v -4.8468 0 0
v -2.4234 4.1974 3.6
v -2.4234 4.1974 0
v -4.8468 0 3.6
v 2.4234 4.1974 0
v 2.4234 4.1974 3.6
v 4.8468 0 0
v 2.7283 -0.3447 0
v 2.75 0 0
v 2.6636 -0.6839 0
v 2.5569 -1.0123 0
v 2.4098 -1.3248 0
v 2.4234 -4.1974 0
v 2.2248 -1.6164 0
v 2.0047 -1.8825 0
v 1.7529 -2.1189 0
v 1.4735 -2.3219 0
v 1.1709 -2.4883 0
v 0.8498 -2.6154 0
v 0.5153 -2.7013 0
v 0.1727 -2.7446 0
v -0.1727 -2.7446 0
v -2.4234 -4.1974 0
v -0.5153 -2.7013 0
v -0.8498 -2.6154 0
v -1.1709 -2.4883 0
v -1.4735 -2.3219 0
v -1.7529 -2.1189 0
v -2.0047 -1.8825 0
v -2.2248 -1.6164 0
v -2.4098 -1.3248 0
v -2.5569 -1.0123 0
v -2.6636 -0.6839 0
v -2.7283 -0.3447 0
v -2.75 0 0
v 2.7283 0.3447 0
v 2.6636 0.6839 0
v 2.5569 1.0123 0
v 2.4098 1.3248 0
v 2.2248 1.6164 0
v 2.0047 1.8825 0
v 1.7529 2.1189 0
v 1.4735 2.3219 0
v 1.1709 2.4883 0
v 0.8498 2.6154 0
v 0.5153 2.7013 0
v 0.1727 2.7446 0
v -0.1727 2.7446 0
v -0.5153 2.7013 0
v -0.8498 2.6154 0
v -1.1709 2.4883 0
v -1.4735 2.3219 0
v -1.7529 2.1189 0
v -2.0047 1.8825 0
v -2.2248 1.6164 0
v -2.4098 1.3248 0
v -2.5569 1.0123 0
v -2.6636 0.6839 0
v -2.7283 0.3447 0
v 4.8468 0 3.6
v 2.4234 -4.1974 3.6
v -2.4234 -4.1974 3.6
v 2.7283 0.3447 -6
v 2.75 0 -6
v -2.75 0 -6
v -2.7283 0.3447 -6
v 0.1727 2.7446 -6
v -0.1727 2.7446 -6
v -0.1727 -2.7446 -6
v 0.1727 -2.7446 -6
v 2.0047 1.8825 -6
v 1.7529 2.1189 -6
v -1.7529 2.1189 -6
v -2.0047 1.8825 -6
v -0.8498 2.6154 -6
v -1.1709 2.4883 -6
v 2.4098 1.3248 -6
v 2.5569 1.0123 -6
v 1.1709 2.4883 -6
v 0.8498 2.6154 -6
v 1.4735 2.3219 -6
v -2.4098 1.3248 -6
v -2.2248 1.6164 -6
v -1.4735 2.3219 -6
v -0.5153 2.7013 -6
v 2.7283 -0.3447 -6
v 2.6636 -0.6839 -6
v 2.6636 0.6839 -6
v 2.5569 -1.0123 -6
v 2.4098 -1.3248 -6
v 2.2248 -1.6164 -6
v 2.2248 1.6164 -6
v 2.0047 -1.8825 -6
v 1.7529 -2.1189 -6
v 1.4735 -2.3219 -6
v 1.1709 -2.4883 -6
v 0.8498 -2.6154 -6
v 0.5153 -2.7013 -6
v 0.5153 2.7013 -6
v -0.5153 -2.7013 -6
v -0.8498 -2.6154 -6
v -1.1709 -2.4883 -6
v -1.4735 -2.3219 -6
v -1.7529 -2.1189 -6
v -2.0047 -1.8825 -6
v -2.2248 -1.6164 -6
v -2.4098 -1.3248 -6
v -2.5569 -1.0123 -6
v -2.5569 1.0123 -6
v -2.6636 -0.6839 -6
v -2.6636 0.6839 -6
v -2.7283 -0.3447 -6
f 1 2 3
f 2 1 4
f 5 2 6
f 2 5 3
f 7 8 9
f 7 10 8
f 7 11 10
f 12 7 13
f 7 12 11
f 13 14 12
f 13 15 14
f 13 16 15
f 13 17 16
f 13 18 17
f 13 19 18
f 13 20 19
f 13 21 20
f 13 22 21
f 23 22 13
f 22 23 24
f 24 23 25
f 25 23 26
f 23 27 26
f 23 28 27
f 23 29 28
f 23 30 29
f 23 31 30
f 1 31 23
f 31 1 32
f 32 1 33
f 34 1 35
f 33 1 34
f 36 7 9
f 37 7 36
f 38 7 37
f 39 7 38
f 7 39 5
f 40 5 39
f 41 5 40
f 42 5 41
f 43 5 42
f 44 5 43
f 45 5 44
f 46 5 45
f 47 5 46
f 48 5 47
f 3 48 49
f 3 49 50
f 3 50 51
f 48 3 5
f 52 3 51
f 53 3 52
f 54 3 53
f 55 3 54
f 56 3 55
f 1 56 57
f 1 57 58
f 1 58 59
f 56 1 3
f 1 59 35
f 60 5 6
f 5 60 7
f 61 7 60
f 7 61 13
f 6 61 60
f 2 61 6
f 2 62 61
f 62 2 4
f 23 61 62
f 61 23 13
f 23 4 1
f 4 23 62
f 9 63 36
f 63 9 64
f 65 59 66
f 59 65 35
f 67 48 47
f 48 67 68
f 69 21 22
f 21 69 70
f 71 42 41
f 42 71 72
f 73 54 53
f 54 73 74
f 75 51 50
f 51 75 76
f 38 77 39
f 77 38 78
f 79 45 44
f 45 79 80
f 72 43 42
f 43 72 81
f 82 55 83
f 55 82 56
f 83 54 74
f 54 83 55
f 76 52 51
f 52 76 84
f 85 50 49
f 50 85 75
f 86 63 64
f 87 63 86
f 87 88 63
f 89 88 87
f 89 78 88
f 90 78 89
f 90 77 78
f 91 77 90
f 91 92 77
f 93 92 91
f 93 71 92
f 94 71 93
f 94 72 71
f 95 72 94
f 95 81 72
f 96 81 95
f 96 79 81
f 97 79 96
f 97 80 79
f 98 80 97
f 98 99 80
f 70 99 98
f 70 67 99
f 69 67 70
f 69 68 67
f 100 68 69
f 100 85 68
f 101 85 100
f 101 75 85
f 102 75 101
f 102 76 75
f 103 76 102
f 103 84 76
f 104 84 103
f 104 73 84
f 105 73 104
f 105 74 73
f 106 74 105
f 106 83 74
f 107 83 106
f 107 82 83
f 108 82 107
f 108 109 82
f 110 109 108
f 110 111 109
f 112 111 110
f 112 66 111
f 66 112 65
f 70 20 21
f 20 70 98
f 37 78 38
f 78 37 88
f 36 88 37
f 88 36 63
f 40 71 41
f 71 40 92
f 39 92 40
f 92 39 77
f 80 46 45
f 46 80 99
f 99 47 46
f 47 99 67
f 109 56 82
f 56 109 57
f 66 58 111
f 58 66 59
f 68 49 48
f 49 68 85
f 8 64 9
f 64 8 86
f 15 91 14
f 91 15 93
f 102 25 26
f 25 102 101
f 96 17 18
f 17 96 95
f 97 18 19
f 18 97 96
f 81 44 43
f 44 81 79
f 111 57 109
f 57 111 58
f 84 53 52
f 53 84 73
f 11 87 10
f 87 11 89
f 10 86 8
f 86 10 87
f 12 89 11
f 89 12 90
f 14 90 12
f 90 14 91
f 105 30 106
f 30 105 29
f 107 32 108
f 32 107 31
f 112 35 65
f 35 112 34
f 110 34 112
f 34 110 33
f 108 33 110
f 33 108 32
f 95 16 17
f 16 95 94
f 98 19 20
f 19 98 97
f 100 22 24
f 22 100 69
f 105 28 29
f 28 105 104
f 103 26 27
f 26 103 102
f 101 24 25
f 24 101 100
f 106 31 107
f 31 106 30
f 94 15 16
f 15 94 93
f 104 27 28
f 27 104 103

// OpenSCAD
$fn = 50;


difference() {
	union() {
		translate(v = [0, 0, 0]) {
			rotate(a = [0, 0, 0]) {
				translate(v = [0, 0, 0]) {
					rotate(a = [0, 0, 0]) {
						linear_extrude(height = 3.6000000000) {
							polygon(points = [[4.8468000000, 0.0000000000], [2.4234000000, 4.1974519271], [-2.4234000000, 4.1974519271], [-4.8468000000, 0.0000000000], [-2.4234000000, -4.1974519271], [2.4234000000, -4.1974519271]]);
						}
					}
				}
			}
		}
		translate(v = [0, 0, -6]) {
			rotate(a = [0, 0, 0]) {
				cylinder(h = 6, r = 2.7500000000);
			}
		}
	}
	union();
}
